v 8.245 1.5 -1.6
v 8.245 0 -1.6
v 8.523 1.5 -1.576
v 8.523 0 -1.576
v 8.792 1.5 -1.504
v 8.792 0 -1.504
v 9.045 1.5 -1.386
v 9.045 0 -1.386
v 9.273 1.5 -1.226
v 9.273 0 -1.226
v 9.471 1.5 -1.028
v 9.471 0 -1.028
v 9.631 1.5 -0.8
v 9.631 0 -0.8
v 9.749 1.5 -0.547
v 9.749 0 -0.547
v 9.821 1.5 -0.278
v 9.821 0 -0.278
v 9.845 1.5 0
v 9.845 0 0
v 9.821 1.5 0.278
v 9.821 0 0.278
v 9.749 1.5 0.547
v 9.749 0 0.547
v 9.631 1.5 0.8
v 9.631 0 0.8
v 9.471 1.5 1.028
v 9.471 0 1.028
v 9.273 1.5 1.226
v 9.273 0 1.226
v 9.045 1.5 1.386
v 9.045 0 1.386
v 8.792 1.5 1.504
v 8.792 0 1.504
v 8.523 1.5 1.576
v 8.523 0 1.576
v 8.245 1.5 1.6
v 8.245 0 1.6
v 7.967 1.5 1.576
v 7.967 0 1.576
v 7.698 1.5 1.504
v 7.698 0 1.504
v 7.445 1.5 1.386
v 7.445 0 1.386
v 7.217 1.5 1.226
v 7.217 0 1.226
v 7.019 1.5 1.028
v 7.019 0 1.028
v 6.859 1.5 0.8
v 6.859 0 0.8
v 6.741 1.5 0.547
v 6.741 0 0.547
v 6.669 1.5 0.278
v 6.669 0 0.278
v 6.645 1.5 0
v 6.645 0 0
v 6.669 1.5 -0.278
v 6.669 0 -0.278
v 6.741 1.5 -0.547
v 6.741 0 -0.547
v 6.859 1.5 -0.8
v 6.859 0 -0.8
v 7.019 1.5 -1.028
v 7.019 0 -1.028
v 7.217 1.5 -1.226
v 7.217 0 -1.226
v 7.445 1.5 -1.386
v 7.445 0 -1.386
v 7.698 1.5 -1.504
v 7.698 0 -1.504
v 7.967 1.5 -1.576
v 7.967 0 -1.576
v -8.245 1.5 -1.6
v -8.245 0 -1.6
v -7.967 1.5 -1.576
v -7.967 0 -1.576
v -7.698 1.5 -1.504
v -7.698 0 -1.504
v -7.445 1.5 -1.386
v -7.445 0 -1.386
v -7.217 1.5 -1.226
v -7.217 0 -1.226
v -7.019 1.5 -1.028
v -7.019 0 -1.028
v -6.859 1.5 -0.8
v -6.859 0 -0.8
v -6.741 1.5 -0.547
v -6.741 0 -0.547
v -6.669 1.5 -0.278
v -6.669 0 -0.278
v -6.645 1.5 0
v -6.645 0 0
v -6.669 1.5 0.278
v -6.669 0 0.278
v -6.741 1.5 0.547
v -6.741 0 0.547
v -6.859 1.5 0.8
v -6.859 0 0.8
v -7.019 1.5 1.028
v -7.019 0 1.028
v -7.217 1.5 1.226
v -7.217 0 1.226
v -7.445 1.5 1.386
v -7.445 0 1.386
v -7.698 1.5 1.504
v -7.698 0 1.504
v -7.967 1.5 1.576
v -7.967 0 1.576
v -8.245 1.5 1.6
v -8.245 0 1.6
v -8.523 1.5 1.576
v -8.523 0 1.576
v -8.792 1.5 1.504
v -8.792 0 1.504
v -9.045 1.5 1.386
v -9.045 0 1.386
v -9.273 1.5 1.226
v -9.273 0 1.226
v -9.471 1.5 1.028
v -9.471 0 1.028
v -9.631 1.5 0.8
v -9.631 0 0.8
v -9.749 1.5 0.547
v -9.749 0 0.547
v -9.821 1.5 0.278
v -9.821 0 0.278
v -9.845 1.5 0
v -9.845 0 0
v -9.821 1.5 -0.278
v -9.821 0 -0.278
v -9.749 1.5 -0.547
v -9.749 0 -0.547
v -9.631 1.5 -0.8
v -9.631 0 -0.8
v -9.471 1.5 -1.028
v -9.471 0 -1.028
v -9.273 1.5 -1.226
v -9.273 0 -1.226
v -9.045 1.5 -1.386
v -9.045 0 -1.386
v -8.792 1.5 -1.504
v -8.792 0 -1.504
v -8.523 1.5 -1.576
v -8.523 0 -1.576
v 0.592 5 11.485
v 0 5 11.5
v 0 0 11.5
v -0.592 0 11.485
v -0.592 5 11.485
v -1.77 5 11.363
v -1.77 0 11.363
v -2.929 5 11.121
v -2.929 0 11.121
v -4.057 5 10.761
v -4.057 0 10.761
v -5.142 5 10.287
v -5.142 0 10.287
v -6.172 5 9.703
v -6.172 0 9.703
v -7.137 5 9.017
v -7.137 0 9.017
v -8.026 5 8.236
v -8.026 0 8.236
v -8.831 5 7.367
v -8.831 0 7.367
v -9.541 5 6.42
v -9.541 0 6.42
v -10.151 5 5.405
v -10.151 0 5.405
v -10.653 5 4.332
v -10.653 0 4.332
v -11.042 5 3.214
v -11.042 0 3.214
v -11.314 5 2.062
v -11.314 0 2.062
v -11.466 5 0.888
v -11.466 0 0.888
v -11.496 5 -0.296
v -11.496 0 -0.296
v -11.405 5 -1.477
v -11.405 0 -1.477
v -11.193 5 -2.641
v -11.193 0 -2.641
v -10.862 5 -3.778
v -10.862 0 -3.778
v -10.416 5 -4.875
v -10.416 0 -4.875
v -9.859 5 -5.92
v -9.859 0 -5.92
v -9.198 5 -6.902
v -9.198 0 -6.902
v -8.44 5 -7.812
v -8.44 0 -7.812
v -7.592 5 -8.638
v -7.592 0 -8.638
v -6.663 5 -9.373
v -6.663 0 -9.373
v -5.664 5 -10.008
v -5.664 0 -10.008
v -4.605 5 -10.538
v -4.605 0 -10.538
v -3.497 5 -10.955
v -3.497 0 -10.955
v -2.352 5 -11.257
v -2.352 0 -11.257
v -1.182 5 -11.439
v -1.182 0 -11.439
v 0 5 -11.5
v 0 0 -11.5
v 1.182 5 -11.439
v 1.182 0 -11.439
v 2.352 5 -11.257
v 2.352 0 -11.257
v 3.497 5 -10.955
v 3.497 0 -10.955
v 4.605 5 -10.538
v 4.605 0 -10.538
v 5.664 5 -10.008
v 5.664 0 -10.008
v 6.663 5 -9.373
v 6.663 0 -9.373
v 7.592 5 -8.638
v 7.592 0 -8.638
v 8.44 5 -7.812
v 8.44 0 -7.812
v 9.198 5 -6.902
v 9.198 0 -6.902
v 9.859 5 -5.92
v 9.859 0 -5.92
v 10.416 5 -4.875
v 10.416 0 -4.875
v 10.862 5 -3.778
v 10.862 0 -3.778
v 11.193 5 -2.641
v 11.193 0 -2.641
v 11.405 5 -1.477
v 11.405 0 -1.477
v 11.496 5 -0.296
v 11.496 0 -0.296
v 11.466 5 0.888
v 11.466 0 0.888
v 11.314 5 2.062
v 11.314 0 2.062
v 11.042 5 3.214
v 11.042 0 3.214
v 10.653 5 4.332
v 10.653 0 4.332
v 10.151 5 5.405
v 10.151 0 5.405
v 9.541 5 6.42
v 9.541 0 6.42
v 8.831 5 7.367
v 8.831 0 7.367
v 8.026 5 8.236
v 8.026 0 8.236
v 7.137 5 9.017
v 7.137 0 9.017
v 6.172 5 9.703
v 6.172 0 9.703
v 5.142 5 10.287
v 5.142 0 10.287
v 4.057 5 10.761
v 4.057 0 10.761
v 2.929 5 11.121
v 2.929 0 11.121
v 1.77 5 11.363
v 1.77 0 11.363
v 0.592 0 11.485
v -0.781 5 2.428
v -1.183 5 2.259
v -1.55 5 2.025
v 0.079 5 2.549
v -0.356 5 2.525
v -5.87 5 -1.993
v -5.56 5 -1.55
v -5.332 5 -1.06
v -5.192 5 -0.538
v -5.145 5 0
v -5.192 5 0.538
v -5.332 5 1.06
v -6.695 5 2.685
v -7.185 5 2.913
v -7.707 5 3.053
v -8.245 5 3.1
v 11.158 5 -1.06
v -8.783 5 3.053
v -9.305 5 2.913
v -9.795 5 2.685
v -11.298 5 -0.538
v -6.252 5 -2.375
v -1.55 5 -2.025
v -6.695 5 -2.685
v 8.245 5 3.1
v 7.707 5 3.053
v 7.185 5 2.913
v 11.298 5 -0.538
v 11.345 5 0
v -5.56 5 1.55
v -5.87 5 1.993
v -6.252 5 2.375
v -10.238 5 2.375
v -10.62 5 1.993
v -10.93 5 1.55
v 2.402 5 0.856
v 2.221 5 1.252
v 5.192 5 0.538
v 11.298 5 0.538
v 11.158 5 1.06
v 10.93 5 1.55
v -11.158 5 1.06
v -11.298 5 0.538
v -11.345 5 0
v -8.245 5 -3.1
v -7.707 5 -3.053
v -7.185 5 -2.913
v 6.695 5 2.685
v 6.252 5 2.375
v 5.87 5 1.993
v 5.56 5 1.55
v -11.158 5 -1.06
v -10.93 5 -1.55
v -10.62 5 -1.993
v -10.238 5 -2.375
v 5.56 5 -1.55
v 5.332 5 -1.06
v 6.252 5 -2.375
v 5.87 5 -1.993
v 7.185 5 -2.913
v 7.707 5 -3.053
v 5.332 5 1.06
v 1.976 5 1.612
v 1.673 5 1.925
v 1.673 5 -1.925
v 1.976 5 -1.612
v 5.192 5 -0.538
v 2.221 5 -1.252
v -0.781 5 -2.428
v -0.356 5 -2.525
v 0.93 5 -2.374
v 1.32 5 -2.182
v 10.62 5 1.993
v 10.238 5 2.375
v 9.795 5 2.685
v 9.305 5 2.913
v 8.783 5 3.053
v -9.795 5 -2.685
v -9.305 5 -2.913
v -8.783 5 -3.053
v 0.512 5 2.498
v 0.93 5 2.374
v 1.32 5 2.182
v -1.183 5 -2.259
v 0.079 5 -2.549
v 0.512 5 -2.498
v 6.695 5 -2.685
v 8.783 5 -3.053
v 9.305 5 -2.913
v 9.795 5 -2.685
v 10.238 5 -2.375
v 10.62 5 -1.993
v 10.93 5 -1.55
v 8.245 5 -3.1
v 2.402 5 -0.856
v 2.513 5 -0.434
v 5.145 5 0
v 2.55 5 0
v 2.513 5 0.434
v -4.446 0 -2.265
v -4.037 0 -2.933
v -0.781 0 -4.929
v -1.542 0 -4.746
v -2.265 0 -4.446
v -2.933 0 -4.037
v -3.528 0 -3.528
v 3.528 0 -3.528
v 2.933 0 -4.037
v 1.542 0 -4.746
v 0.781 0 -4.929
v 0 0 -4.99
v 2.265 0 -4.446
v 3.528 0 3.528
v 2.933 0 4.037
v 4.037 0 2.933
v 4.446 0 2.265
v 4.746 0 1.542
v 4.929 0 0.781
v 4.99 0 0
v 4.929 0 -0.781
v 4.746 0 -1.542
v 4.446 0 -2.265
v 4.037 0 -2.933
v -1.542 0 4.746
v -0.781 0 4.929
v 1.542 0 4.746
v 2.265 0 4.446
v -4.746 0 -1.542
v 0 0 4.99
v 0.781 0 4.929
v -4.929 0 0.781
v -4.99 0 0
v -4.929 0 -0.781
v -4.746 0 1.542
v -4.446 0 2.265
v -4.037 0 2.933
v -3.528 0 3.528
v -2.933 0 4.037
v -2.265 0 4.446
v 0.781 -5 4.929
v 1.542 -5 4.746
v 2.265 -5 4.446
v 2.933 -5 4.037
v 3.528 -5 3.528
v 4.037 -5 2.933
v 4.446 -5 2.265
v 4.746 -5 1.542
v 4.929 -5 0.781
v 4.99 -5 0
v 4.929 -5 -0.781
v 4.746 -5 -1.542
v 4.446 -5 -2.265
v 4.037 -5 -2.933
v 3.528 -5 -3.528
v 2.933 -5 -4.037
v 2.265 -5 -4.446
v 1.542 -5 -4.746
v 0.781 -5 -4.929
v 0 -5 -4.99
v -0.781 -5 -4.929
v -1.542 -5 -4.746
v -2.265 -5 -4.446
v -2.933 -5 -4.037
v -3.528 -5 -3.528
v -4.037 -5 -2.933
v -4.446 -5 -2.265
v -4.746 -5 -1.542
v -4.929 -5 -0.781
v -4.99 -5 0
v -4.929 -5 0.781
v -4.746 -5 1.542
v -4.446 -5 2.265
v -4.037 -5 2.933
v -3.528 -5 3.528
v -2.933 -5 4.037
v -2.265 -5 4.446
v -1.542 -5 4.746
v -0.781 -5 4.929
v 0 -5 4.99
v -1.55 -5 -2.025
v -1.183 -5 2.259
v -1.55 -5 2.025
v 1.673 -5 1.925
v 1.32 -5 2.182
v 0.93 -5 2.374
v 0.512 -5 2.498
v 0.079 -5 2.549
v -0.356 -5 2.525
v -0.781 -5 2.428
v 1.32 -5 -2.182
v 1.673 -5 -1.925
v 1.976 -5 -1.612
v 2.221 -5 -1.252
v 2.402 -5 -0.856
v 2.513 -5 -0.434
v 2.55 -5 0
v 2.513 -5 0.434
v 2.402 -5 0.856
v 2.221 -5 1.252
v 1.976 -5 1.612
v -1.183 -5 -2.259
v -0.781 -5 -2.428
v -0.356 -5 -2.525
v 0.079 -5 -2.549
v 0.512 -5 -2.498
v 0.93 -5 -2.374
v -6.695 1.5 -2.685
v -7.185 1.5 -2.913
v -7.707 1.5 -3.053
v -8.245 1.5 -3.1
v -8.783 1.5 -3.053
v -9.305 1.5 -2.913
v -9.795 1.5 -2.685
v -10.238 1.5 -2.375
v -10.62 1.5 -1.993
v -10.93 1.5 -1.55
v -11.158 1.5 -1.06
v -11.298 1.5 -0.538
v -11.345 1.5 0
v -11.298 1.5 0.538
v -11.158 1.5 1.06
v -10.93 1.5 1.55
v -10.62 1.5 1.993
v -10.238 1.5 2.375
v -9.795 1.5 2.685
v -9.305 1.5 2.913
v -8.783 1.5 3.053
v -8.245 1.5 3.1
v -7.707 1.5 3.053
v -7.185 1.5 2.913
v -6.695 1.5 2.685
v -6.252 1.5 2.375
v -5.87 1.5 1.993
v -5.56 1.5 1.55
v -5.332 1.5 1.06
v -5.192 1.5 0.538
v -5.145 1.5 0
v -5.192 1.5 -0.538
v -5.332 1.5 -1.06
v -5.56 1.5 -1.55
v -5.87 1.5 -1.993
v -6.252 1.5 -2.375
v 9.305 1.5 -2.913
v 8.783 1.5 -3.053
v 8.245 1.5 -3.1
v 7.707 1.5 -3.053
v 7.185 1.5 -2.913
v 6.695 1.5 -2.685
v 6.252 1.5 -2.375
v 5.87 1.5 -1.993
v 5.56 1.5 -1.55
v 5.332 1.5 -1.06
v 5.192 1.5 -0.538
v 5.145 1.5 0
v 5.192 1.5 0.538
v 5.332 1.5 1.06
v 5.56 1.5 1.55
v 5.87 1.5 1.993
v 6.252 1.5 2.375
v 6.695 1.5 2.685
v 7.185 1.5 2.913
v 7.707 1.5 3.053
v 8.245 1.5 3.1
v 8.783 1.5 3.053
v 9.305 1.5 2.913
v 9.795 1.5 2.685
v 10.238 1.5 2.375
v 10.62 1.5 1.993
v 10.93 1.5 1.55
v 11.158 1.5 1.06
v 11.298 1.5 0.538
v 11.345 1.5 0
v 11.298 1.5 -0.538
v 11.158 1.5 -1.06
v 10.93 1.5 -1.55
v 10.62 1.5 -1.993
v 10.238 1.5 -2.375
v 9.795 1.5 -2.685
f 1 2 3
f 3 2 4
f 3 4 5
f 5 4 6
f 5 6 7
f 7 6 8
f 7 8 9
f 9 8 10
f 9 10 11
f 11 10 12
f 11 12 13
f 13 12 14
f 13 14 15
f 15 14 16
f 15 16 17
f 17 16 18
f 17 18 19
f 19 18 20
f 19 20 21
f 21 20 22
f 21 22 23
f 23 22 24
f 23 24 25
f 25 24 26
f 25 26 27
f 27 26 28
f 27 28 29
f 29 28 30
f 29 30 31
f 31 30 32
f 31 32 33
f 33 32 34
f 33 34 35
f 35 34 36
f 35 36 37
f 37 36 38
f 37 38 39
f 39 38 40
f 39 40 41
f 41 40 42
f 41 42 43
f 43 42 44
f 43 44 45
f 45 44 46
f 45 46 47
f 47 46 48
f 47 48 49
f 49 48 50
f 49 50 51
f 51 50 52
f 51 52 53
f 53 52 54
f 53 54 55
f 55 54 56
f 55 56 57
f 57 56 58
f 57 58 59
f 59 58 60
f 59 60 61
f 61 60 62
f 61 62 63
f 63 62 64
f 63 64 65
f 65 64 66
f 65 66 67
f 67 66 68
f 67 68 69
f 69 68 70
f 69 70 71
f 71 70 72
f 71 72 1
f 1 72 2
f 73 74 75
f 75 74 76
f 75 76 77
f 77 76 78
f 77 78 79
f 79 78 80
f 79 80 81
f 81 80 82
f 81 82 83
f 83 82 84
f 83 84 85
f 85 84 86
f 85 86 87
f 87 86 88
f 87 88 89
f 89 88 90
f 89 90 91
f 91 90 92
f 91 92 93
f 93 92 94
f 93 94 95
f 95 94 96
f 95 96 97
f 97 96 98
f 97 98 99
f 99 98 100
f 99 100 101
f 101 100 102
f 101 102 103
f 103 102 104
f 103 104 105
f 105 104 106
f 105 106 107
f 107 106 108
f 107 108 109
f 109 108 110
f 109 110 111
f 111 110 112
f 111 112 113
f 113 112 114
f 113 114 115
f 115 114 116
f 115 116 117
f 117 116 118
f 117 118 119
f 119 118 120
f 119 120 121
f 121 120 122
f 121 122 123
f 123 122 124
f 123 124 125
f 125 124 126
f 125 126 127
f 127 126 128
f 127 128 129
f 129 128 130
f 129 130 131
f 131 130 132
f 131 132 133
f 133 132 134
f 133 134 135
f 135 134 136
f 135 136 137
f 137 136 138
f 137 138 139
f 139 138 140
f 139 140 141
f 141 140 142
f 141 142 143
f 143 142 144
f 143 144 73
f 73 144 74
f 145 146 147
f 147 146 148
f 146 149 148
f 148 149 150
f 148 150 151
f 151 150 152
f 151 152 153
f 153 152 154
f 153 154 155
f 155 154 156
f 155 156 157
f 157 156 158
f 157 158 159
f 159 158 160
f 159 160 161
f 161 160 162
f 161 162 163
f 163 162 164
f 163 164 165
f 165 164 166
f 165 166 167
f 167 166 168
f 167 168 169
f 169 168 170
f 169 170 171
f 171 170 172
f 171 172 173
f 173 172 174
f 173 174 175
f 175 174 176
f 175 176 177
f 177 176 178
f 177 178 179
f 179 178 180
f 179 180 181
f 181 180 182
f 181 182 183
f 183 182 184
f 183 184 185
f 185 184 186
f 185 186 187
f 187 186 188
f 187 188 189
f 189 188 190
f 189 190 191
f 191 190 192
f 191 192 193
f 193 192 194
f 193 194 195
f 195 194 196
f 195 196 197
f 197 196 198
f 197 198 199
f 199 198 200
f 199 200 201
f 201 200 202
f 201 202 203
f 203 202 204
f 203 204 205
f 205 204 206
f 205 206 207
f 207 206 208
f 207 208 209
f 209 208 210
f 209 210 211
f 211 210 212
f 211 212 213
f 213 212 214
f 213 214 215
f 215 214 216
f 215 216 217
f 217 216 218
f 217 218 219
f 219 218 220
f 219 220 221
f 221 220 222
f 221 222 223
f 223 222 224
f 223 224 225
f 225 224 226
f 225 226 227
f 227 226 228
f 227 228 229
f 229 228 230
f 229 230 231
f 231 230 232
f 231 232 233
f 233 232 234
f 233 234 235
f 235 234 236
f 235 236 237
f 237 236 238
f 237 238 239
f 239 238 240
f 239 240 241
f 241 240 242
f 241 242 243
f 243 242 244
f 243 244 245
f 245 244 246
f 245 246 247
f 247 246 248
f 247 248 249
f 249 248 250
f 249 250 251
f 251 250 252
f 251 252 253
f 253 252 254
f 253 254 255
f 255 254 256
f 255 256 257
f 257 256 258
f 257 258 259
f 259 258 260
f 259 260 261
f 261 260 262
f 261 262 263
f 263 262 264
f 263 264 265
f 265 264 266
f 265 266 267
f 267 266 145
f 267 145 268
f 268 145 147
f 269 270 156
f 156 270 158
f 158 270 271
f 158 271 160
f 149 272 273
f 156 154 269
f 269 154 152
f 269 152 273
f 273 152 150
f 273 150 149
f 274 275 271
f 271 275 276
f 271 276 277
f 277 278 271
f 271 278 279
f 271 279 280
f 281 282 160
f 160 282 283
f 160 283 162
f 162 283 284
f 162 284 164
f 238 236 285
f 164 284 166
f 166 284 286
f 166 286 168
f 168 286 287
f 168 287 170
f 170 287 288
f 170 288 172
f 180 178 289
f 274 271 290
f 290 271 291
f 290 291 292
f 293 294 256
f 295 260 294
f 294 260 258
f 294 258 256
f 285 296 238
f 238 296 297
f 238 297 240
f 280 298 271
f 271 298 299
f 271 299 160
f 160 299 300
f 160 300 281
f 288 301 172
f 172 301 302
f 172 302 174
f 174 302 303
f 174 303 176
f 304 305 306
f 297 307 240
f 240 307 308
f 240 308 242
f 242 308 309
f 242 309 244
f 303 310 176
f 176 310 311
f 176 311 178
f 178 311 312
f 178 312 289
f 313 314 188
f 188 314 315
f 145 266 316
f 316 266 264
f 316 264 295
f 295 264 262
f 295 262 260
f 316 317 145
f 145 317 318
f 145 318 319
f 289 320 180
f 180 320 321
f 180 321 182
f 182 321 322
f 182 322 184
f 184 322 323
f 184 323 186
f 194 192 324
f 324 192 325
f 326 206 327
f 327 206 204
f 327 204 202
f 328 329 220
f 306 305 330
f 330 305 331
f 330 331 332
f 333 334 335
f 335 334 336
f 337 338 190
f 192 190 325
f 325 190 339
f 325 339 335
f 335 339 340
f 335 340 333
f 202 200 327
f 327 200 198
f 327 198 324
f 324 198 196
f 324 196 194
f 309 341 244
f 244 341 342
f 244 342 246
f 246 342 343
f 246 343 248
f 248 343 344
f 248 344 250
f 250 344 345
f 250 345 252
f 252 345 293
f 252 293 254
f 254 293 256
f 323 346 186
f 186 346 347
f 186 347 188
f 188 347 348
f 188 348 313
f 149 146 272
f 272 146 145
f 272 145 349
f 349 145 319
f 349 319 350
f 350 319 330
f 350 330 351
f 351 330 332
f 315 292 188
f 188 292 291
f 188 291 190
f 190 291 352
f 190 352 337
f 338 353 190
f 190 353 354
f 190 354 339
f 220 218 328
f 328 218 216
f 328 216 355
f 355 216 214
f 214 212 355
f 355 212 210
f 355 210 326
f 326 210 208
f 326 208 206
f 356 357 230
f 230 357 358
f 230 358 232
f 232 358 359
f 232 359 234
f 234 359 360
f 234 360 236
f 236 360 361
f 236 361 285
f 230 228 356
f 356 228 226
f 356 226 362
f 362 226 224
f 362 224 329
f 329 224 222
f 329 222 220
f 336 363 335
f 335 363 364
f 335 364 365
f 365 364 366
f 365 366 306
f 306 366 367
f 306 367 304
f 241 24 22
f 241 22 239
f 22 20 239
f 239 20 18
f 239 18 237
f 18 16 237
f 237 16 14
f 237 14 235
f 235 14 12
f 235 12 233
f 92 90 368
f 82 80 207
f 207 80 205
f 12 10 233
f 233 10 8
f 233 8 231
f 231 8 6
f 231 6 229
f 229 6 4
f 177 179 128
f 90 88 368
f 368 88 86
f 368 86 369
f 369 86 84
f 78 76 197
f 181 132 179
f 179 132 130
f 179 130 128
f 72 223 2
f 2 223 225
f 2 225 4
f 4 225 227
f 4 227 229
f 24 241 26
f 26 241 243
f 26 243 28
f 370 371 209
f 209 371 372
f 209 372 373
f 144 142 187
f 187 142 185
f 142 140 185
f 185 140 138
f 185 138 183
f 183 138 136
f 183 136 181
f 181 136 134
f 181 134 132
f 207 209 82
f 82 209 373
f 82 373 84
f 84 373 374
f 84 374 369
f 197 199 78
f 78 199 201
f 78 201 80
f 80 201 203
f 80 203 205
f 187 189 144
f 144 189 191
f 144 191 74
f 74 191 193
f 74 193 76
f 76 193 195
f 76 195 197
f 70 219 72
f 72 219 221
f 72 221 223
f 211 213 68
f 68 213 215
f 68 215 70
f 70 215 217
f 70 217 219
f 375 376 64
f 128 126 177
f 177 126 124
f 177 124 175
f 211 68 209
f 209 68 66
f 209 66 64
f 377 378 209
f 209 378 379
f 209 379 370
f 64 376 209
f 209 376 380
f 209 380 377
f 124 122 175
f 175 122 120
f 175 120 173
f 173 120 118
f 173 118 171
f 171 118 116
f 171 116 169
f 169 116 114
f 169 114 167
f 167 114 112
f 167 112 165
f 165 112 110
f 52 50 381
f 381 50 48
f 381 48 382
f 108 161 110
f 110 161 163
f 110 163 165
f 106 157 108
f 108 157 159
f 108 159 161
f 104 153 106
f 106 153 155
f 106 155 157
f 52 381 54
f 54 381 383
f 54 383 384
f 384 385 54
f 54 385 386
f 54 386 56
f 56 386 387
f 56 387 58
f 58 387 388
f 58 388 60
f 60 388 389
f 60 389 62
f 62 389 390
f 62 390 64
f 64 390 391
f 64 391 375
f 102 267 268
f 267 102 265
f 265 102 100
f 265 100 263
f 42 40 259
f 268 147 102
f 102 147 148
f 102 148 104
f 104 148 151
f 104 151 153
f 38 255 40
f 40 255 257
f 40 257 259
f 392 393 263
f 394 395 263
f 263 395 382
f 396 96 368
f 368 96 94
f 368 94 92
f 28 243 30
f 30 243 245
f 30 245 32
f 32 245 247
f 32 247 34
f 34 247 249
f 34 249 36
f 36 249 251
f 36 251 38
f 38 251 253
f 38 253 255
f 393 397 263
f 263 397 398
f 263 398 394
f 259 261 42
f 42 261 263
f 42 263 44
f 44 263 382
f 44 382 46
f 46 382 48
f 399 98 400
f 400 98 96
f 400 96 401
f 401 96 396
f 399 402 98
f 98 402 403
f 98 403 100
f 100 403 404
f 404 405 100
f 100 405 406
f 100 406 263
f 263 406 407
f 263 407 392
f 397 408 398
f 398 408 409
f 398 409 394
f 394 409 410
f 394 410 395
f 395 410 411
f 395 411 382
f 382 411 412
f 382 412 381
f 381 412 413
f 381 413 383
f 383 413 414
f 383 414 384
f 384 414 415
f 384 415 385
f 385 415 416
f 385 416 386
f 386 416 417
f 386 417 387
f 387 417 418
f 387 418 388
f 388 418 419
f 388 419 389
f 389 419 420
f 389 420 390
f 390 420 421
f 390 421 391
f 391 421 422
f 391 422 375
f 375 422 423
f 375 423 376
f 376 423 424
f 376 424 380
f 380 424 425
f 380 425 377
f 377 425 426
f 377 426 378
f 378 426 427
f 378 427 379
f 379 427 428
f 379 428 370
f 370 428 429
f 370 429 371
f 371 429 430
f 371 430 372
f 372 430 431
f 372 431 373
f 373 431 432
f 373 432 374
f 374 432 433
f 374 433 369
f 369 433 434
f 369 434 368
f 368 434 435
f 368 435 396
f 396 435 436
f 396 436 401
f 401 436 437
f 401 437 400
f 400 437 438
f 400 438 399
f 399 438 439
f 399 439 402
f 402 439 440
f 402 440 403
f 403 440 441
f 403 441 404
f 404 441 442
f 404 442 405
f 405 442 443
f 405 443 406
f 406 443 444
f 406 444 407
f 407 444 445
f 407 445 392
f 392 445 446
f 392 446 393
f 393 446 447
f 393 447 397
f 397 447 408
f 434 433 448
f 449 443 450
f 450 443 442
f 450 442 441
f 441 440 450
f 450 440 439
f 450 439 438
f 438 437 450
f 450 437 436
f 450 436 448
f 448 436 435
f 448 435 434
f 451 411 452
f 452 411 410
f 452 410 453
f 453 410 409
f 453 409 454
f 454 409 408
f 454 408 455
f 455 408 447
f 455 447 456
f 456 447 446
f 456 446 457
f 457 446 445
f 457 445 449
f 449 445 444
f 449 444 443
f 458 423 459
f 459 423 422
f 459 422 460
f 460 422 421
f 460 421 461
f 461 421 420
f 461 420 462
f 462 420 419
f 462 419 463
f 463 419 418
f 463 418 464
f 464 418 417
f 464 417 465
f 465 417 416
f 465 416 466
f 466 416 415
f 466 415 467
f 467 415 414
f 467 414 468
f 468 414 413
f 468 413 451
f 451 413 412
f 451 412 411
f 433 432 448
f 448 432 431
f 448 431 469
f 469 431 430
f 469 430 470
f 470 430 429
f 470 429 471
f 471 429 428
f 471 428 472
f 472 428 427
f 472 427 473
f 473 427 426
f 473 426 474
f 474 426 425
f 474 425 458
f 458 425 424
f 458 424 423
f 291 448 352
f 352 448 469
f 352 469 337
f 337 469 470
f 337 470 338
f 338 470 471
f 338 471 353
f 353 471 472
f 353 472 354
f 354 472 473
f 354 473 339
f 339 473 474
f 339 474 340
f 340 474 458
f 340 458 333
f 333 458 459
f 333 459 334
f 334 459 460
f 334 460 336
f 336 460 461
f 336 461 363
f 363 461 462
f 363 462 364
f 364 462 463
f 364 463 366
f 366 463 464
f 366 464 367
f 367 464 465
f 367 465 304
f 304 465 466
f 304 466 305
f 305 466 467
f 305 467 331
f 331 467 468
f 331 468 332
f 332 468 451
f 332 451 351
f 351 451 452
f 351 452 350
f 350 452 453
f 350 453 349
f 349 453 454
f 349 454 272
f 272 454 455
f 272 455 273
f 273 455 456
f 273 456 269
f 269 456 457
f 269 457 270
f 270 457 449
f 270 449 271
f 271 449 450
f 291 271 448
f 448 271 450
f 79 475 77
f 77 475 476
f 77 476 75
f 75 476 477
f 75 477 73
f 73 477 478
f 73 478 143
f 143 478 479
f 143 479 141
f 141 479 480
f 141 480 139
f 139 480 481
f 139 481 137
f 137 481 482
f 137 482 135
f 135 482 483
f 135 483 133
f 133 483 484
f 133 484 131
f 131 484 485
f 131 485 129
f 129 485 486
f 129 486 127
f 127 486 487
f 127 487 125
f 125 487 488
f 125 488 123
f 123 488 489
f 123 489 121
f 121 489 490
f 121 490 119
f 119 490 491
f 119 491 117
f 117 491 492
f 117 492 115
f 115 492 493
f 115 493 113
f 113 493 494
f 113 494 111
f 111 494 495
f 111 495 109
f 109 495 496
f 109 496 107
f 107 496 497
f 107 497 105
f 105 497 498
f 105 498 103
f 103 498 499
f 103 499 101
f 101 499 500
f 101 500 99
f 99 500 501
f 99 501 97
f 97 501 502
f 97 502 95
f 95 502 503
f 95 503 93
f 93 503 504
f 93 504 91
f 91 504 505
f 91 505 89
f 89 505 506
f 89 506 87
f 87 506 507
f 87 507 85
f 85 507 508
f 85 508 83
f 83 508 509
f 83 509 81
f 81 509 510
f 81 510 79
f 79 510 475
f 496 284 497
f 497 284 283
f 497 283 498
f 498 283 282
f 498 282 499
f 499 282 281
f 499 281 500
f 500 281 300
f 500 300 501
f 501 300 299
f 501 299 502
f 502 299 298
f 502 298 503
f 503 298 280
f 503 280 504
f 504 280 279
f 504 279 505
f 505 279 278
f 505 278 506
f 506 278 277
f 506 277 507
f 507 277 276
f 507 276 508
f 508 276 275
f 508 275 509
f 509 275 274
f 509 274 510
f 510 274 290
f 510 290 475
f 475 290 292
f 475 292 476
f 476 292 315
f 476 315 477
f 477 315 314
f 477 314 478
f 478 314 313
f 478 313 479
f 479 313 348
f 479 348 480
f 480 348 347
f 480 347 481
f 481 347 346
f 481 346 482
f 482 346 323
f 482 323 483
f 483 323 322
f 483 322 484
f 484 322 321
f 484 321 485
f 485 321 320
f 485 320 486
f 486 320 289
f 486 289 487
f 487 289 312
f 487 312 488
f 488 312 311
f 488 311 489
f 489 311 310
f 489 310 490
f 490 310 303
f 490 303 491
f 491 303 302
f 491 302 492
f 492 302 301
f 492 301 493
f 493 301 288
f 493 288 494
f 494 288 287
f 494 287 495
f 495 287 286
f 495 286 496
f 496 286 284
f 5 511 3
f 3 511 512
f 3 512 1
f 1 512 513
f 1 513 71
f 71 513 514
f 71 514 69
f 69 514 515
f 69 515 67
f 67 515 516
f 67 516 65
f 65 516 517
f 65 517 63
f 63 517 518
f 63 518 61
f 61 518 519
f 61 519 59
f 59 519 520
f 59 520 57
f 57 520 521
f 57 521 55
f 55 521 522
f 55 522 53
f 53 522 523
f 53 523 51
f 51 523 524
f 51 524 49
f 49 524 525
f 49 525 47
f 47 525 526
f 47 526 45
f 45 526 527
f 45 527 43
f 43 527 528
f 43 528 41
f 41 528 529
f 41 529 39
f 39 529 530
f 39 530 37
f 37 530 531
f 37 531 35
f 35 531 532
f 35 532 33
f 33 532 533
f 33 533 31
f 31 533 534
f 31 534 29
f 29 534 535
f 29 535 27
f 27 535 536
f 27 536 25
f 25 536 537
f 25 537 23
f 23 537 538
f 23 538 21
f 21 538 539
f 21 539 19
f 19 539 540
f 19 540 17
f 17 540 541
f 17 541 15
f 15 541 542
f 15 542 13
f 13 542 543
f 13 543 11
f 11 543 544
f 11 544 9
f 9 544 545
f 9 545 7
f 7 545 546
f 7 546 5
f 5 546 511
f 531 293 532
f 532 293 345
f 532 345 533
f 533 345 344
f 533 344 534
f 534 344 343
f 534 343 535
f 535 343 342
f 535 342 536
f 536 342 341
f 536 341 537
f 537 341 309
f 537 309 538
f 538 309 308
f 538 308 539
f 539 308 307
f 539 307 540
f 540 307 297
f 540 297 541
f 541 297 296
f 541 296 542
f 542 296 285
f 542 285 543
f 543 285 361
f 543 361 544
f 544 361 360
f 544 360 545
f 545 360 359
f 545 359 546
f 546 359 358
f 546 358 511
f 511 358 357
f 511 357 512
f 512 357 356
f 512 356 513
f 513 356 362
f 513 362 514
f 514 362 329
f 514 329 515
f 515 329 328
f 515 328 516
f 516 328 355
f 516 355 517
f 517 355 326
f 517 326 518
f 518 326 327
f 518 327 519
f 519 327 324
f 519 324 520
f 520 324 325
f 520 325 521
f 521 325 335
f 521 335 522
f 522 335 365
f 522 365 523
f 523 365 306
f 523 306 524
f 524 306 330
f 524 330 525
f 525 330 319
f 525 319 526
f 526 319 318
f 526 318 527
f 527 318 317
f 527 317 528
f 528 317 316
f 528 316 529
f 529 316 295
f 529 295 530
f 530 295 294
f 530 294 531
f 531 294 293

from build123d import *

# Parameters (mm, degrees)
CROQUIS1_R              = 11.5
SALIENTE_EXTRUIR1_DEPTH = 5
CROQUIS2_R              = 4.99
SALIENTE_EXTRUIR2_DEPTH = 5
CROQUIS3_R              = 1.6
CORTAR_EXTRUIR1_DEPTH   = 6
CORTAR_EXTRUIR2_DEPTH   = 11
CROQUIS5_R              = 3.1
CORTAR_EXTRUIR3_DEPTH   = 3.5


with BuildPart() as part:
    # Croquis1 → Saliente-Extruir1 (new body)
    with BuildSketch(Plane(origin=(0, 0, 0), x_dir=(1, 0, 0), z_dir=(0, 1, 0))):
        Circle(CROQUIS1_R)
    extrude(amount=SALIENTE_EXTRUIR1_DEPTH)

    # Croquis2 → Saliente-Extruir2 (add)
    with BuildSketch(Plane.XZ):
        Circle(CROQUIS2_R)
    extrude(amount=SALIENTE_EXTRUIR2_DEPTH)

    # Croquis3 → Cortar-Extruir1 (cut, through all)
    with BuildSketch(Plane.XZ):
        with Locations((-8.245, 0)):
            Circle(CROQUIS3_R)
        with Locations((8.245, 0)):
            Circle(CROQUIS3_R)
    extrude(amount=-CORTAR_EXTRUIR1_DEPTH, mode=Mode.SUBTRACT)

    # Croquis4 → Cortar-Extruir2 (cut, through all)
    with BuildSketch(Plane.XZ.offset(5)):
        with BuildLine():
            Line((-1.55, 2.024845673), (-1.55, -2.024845673))
            ThreePointArc((-1.55, -2.024845673), (2.55, 0), (-1.55, 2.024845673))
        make_face()
    extrude(amount=-CORTAR_EXTRUIR2_DEPTH, mode=Mode.SUBTRACT)

    # Croquis5 → Cortar-Extruir3 (cut)
    with BuildSketch(Plane(origin=(0, 5, 0), x_dir=(1, 0, 0), z_dir=(0, 1, 0))):
        with Locations((-8.245, 0)):
            Circle(CROQUIS5_R)
        with Locations((8.245, 0)):
            Circle(CROQUIS5_R)
    extrude(amount=-CORTAR_EXTRUIR3_DEPTH, mode=Mode.SUBTRACT)


solid = part.part
